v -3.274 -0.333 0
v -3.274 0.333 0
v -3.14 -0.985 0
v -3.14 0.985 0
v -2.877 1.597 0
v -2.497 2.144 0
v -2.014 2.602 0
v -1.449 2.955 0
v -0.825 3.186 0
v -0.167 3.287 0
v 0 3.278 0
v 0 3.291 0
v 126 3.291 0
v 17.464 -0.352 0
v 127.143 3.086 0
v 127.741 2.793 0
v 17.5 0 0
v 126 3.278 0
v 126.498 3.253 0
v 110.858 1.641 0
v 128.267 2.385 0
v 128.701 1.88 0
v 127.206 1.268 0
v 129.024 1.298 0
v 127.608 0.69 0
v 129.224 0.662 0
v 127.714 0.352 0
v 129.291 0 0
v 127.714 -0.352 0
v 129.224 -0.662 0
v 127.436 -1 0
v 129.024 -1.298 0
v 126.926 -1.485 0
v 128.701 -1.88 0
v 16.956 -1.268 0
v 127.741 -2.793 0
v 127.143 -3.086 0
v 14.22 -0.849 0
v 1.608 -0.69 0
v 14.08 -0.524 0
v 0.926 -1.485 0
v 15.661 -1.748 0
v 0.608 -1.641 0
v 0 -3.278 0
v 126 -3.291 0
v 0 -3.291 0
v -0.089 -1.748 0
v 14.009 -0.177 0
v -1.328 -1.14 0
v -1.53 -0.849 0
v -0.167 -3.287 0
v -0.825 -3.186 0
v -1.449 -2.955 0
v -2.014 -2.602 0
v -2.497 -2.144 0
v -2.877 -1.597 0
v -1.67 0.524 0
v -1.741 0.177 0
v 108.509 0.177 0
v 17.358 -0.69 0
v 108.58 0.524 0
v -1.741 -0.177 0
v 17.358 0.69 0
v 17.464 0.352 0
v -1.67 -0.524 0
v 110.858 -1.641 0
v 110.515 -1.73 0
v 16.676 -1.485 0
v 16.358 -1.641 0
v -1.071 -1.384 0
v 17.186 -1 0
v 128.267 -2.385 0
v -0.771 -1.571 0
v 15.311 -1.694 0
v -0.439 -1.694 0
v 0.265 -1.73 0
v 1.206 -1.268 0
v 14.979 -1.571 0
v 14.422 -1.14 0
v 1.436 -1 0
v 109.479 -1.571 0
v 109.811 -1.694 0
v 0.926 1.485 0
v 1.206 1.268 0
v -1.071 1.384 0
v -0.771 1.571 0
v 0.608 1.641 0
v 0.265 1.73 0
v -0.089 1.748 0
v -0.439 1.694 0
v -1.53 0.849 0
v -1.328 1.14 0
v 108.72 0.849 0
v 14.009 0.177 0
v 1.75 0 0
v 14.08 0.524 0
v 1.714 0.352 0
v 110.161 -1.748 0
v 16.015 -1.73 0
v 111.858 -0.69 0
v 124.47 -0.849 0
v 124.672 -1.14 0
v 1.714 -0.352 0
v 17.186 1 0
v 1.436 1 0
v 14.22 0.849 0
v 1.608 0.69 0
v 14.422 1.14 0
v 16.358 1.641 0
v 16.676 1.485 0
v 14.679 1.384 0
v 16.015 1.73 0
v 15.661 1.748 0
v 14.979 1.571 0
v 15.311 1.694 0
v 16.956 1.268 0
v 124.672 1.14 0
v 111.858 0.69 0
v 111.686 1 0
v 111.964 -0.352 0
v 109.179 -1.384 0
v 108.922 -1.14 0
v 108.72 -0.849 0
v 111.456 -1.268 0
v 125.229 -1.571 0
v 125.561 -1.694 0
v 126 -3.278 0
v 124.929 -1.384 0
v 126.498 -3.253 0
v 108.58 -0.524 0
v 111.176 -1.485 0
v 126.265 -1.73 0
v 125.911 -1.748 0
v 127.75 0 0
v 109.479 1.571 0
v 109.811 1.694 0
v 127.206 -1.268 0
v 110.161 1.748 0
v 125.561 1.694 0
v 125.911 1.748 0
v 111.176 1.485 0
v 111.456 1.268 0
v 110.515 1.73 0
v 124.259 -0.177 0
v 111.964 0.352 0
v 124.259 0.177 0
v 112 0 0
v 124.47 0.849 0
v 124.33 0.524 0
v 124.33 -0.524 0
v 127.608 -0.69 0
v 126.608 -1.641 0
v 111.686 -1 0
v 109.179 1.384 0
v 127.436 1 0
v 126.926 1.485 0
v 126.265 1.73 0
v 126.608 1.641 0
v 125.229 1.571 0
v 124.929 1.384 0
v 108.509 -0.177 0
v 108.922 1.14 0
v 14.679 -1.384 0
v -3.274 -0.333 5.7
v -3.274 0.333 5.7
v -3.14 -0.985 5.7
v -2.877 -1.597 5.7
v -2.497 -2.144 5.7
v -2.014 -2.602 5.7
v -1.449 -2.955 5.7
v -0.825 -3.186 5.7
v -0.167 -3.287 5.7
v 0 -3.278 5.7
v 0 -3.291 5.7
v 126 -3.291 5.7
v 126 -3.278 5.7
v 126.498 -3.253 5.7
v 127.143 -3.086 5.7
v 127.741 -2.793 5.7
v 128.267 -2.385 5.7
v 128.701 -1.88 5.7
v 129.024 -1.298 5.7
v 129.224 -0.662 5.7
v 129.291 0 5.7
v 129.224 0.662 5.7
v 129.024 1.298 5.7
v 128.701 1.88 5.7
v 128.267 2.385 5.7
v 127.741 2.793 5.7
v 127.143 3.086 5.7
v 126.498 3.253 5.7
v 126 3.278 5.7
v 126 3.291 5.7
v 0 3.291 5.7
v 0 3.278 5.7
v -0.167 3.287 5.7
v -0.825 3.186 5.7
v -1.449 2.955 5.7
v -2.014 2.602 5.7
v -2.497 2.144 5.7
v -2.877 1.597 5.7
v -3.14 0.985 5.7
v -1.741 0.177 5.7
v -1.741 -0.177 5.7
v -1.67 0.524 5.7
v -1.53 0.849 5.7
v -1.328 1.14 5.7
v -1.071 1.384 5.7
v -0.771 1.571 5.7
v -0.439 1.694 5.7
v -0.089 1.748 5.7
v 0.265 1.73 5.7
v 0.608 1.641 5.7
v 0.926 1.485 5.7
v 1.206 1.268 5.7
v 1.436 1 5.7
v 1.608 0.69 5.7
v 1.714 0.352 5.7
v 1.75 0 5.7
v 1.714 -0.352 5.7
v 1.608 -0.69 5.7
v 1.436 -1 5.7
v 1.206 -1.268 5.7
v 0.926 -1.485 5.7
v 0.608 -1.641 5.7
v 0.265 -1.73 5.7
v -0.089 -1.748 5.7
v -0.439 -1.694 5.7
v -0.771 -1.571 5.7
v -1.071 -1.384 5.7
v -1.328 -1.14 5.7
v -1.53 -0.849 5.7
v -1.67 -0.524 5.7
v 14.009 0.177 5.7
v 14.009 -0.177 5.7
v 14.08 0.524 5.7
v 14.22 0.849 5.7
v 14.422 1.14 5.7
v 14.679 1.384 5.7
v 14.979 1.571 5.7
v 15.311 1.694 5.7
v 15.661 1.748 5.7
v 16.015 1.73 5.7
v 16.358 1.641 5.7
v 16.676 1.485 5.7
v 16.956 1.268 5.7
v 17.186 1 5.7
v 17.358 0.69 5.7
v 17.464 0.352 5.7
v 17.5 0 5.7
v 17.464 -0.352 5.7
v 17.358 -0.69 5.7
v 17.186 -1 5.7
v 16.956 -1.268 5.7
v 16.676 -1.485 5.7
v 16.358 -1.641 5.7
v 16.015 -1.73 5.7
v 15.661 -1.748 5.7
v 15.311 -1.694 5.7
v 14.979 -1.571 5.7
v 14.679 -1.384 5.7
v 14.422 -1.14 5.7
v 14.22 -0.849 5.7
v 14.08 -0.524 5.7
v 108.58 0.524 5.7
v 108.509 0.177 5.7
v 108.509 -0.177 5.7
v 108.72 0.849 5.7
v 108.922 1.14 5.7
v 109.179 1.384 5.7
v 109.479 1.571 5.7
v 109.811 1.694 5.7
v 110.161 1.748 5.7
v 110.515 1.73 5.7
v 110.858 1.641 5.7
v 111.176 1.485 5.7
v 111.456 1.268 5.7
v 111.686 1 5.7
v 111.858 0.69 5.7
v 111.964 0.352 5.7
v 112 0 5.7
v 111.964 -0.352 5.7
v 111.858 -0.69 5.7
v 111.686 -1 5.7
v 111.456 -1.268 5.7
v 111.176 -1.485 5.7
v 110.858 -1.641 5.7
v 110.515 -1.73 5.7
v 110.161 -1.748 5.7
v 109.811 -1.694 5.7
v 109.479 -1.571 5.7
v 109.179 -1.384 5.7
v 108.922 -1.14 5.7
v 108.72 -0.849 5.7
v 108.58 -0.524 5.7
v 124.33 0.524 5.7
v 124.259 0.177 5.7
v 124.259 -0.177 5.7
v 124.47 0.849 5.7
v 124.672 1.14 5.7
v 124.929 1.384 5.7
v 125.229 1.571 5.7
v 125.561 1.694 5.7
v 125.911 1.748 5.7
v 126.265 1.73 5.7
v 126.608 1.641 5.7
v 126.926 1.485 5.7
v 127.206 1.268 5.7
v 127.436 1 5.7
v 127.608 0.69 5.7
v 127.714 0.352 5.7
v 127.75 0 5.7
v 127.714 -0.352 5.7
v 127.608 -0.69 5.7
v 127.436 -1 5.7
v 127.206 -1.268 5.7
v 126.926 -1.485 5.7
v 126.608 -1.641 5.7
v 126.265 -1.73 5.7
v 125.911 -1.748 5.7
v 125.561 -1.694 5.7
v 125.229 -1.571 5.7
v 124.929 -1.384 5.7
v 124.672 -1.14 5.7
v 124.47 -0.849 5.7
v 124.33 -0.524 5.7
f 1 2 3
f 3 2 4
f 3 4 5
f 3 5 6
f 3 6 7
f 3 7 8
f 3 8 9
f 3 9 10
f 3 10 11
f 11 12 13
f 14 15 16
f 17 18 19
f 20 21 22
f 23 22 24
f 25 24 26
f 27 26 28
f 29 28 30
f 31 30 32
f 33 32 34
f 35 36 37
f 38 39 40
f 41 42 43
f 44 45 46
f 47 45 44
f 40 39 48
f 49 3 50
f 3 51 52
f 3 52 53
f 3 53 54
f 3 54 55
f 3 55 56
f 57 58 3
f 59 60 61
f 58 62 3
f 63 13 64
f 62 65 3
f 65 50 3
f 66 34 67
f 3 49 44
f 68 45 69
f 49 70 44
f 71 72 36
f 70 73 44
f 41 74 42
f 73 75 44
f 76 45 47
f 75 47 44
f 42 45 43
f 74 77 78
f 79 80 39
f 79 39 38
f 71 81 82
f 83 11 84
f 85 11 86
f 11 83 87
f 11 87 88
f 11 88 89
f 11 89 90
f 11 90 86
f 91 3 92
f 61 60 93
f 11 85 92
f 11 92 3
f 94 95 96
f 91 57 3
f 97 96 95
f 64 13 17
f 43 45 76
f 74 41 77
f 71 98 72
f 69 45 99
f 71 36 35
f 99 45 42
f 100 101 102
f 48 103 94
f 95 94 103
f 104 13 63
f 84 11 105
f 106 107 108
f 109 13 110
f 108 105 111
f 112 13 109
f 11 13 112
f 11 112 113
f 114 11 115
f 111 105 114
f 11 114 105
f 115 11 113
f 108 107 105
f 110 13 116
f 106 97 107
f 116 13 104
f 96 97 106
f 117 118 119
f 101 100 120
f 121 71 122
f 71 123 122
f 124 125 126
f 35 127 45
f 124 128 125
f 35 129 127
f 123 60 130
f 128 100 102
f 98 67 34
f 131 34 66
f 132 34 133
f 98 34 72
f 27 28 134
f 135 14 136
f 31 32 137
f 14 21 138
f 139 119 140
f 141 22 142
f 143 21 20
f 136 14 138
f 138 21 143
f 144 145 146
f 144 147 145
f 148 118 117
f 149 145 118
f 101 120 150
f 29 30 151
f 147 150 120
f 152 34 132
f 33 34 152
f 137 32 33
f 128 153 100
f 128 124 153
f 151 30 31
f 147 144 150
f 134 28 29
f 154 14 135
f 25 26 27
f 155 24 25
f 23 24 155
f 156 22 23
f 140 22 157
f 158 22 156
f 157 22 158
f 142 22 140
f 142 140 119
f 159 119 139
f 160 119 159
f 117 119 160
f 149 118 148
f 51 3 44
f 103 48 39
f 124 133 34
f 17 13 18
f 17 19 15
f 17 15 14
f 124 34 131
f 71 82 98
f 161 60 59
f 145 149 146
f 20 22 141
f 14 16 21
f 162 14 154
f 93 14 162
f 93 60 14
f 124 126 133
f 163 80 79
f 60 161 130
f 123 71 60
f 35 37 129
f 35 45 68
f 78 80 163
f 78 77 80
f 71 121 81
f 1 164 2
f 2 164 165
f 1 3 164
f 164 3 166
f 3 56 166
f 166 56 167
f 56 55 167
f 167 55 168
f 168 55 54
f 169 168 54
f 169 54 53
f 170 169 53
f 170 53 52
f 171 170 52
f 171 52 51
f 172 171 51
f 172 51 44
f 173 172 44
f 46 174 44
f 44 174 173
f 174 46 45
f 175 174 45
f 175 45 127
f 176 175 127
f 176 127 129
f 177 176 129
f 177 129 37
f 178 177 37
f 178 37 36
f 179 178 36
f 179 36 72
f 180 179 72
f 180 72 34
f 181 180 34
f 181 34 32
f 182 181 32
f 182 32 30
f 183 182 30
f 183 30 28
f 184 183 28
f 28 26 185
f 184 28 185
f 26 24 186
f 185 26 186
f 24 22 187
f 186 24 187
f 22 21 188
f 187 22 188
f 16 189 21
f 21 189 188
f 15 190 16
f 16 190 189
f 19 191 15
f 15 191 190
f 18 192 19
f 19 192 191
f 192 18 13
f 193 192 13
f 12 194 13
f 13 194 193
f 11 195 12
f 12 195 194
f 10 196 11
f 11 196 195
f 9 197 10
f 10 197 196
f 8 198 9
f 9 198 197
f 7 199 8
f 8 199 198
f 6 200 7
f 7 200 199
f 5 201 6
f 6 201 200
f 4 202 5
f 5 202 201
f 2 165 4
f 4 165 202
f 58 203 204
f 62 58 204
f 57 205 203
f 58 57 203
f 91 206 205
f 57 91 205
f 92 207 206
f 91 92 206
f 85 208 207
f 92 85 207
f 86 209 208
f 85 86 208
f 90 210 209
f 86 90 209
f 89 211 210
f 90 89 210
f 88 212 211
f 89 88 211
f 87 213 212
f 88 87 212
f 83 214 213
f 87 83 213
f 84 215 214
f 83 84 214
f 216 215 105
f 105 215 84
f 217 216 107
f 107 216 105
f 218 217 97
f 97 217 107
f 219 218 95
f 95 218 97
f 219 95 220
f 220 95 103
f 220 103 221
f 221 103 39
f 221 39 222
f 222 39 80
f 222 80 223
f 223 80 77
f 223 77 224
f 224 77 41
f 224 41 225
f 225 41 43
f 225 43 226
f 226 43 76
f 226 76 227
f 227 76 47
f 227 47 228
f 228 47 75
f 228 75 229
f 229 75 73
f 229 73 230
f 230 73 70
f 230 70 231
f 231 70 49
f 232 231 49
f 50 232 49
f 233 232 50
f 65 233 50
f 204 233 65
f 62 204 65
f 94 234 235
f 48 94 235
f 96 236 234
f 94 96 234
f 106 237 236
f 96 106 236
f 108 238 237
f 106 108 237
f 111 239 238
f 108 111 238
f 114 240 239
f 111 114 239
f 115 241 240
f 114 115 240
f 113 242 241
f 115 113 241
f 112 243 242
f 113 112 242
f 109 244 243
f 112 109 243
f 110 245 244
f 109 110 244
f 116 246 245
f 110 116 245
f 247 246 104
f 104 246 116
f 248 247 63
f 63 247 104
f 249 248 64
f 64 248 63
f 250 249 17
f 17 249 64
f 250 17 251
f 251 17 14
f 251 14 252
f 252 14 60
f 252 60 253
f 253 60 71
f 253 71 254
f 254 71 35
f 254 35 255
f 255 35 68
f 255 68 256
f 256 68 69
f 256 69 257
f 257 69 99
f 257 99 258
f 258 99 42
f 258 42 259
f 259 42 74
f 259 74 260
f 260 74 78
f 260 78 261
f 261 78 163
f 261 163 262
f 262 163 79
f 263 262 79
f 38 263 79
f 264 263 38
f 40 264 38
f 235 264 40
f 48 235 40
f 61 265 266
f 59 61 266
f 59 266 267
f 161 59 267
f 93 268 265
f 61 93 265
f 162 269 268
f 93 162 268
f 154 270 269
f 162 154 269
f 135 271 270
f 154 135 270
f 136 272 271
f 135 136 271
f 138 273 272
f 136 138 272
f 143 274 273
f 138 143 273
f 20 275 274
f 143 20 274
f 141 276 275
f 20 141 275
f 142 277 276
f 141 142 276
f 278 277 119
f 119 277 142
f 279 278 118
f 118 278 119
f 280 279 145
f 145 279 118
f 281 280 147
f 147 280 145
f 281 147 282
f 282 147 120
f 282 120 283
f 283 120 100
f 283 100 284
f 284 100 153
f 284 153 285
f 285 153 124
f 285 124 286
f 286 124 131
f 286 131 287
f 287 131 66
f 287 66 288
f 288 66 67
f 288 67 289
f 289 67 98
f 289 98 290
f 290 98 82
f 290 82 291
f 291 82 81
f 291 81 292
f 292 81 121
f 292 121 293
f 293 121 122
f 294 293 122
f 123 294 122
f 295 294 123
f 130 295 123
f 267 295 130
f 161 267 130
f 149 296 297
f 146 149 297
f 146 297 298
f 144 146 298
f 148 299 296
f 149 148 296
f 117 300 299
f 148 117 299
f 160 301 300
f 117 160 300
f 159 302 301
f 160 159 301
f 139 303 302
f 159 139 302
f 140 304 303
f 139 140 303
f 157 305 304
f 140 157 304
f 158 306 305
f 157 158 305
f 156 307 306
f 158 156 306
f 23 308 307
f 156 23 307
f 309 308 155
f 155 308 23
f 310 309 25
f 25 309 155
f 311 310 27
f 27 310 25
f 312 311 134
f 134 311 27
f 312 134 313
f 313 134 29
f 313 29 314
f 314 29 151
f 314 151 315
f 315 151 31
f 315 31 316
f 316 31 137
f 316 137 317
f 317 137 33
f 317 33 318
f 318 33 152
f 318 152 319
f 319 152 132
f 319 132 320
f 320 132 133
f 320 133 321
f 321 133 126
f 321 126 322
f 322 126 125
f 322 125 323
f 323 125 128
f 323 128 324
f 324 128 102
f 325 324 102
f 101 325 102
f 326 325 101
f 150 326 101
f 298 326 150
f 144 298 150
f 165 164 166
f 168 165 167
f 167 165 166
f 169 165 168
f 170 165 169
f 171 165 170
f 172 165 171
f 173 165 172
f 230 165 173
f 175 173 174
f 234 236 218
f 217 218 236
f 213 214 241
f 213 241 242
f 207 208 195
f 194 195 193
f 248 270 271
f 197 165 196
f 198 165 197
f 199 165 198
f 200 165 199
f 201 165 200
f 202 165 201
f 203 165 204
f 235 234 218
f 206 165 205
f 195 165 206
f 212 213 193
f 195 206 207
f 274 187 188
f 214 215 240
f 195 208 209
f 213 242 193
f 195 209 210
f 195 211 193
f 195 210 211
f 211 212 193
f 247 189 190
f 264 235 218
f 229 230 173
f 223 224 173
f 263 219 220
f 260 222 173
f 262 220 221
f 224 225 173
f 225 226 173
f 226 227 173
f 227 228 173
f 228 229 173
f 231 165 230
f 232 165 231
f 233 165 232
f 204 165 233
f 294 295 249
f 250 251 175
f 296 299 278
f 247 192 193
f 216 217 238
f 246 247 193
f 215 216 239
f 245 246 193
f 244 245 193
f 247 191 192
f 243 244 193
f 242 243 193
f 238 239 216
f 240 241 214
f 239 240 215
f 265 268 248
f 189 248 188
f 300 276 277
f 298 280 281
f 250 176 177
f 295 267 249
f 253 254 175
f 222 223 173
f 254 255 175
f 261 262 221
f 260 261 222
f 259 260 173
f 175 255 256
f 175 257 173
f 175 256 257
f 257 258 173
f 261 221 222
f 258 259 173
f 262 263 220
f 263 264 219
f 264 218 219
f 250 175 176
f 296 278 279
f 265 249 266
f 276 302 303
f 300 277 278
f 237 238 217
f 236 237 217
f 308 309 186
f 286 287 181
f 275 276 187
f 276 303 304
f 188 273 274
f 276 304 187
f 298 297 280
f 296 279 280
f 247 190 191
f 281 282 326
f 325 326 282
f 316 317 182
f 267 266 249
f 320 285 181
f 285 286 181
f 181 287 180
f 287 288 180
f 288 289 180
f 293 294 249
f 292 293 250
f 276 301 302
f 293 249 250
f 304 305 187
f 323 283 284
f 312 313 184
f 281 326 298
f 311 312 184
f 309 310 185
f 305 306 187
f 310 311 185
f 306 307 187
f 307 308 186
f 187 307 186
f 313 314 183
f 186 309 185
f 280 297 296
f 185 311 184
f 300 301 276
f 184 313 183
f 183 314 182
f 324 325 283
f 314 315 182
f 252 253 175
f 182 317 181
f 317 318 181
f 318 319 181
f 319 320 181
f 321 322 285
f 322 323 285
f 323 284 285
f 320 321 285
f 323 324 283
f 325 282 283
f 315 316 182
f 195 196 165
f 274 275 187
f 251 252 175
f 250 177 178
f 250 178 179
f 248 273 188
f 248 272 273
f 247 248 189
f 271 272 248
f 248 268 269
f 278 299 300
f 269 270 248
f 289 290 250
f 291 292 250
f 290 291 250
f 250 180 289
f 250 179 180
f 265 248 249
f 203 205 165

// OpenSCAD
// file: config.scad
// https://docs.google.com/viewer?a=v&pid=explorer&chrome=true&srcid=0B8AGtzEPL1XpNGIwMjM0NzQtZmMyMS00YmU2LTkwMjItNTkzNzA0MDJkZTAx&hl=en_US&authkey=CMjZjW0

$fn = 31;

//Delta config constants
upperlinkage = 63; 
lowerlinkage = 126;
baseradius = 45;
endeffector = 50; //radius of the end effector
fourbarspacing = 70;

//hardware
screwdia = 3.5; //m3
screwheaddia = 5.6; //m3
screwheadheight = 3.2; //m3
nutapothem = 5.7; //m3
nutheight = 2.5; //m3 lock nut

//motors 
holespacing = 17*2.54*sin(45); //nema 17
shaftlength = 22;
shaftdia = 5;
bodylength = 48;
bodywidth = 42; //could also be diameter of a round servo
motorwall = 2.75;
motorcenterdia = 22;

//Structure pieces
structbase = 110;  //180
structheight = 40;  //70
structholes = 3; //how many holes are on each side. 
structthickness = 2;
structbracewidth = 9;

//z axis plates
smoothroddia = 8;
platelength = 110;
platethickness = 3;

//cups
cupwall = 2.7;


//base
basemotorwall = 4;

//upper linkage
upperlinkthick = nutapothem/cos(30);
upperlinkwidth = 20;

//general shit
nutwall = nutapothem/4;
// main file
include <config.scad>;

module lowerlinkage(){

	difference(){

		union(){

			//bearing holes wall
			translate([0,0,0])cylinder (r=nutapothem/cos(30)/2, h = nutapothem);
			translate([lowerlinkage,0,0])cylinder (r=nutapothem/cos(30)/2, h =nutapothem);

			//length
			translate([0,-nutapothem/cos(30)/2,0])cube([lowerlinkage,nutapothem/cos(30),nutapothem]);

		}

		//bearing holes
		translate([0,0,-1])cylinder (r=screwdia/2, h = nutapothem+2);
		translate([lowerlinkage,0,-1])cylinder (r=screwdia/2, h = nutapothem+2);

		//tension holes
		translate([lowerlinkage*(1/8),0,-1])cylinder (r=screwdia/2, h = nutapothem+2);
		translate([lowerlinkage*(7/8),0,-1])cylinder (r=screwdia/2, h = nutapothem+2);

	
	}

}

lowerlinkage();
